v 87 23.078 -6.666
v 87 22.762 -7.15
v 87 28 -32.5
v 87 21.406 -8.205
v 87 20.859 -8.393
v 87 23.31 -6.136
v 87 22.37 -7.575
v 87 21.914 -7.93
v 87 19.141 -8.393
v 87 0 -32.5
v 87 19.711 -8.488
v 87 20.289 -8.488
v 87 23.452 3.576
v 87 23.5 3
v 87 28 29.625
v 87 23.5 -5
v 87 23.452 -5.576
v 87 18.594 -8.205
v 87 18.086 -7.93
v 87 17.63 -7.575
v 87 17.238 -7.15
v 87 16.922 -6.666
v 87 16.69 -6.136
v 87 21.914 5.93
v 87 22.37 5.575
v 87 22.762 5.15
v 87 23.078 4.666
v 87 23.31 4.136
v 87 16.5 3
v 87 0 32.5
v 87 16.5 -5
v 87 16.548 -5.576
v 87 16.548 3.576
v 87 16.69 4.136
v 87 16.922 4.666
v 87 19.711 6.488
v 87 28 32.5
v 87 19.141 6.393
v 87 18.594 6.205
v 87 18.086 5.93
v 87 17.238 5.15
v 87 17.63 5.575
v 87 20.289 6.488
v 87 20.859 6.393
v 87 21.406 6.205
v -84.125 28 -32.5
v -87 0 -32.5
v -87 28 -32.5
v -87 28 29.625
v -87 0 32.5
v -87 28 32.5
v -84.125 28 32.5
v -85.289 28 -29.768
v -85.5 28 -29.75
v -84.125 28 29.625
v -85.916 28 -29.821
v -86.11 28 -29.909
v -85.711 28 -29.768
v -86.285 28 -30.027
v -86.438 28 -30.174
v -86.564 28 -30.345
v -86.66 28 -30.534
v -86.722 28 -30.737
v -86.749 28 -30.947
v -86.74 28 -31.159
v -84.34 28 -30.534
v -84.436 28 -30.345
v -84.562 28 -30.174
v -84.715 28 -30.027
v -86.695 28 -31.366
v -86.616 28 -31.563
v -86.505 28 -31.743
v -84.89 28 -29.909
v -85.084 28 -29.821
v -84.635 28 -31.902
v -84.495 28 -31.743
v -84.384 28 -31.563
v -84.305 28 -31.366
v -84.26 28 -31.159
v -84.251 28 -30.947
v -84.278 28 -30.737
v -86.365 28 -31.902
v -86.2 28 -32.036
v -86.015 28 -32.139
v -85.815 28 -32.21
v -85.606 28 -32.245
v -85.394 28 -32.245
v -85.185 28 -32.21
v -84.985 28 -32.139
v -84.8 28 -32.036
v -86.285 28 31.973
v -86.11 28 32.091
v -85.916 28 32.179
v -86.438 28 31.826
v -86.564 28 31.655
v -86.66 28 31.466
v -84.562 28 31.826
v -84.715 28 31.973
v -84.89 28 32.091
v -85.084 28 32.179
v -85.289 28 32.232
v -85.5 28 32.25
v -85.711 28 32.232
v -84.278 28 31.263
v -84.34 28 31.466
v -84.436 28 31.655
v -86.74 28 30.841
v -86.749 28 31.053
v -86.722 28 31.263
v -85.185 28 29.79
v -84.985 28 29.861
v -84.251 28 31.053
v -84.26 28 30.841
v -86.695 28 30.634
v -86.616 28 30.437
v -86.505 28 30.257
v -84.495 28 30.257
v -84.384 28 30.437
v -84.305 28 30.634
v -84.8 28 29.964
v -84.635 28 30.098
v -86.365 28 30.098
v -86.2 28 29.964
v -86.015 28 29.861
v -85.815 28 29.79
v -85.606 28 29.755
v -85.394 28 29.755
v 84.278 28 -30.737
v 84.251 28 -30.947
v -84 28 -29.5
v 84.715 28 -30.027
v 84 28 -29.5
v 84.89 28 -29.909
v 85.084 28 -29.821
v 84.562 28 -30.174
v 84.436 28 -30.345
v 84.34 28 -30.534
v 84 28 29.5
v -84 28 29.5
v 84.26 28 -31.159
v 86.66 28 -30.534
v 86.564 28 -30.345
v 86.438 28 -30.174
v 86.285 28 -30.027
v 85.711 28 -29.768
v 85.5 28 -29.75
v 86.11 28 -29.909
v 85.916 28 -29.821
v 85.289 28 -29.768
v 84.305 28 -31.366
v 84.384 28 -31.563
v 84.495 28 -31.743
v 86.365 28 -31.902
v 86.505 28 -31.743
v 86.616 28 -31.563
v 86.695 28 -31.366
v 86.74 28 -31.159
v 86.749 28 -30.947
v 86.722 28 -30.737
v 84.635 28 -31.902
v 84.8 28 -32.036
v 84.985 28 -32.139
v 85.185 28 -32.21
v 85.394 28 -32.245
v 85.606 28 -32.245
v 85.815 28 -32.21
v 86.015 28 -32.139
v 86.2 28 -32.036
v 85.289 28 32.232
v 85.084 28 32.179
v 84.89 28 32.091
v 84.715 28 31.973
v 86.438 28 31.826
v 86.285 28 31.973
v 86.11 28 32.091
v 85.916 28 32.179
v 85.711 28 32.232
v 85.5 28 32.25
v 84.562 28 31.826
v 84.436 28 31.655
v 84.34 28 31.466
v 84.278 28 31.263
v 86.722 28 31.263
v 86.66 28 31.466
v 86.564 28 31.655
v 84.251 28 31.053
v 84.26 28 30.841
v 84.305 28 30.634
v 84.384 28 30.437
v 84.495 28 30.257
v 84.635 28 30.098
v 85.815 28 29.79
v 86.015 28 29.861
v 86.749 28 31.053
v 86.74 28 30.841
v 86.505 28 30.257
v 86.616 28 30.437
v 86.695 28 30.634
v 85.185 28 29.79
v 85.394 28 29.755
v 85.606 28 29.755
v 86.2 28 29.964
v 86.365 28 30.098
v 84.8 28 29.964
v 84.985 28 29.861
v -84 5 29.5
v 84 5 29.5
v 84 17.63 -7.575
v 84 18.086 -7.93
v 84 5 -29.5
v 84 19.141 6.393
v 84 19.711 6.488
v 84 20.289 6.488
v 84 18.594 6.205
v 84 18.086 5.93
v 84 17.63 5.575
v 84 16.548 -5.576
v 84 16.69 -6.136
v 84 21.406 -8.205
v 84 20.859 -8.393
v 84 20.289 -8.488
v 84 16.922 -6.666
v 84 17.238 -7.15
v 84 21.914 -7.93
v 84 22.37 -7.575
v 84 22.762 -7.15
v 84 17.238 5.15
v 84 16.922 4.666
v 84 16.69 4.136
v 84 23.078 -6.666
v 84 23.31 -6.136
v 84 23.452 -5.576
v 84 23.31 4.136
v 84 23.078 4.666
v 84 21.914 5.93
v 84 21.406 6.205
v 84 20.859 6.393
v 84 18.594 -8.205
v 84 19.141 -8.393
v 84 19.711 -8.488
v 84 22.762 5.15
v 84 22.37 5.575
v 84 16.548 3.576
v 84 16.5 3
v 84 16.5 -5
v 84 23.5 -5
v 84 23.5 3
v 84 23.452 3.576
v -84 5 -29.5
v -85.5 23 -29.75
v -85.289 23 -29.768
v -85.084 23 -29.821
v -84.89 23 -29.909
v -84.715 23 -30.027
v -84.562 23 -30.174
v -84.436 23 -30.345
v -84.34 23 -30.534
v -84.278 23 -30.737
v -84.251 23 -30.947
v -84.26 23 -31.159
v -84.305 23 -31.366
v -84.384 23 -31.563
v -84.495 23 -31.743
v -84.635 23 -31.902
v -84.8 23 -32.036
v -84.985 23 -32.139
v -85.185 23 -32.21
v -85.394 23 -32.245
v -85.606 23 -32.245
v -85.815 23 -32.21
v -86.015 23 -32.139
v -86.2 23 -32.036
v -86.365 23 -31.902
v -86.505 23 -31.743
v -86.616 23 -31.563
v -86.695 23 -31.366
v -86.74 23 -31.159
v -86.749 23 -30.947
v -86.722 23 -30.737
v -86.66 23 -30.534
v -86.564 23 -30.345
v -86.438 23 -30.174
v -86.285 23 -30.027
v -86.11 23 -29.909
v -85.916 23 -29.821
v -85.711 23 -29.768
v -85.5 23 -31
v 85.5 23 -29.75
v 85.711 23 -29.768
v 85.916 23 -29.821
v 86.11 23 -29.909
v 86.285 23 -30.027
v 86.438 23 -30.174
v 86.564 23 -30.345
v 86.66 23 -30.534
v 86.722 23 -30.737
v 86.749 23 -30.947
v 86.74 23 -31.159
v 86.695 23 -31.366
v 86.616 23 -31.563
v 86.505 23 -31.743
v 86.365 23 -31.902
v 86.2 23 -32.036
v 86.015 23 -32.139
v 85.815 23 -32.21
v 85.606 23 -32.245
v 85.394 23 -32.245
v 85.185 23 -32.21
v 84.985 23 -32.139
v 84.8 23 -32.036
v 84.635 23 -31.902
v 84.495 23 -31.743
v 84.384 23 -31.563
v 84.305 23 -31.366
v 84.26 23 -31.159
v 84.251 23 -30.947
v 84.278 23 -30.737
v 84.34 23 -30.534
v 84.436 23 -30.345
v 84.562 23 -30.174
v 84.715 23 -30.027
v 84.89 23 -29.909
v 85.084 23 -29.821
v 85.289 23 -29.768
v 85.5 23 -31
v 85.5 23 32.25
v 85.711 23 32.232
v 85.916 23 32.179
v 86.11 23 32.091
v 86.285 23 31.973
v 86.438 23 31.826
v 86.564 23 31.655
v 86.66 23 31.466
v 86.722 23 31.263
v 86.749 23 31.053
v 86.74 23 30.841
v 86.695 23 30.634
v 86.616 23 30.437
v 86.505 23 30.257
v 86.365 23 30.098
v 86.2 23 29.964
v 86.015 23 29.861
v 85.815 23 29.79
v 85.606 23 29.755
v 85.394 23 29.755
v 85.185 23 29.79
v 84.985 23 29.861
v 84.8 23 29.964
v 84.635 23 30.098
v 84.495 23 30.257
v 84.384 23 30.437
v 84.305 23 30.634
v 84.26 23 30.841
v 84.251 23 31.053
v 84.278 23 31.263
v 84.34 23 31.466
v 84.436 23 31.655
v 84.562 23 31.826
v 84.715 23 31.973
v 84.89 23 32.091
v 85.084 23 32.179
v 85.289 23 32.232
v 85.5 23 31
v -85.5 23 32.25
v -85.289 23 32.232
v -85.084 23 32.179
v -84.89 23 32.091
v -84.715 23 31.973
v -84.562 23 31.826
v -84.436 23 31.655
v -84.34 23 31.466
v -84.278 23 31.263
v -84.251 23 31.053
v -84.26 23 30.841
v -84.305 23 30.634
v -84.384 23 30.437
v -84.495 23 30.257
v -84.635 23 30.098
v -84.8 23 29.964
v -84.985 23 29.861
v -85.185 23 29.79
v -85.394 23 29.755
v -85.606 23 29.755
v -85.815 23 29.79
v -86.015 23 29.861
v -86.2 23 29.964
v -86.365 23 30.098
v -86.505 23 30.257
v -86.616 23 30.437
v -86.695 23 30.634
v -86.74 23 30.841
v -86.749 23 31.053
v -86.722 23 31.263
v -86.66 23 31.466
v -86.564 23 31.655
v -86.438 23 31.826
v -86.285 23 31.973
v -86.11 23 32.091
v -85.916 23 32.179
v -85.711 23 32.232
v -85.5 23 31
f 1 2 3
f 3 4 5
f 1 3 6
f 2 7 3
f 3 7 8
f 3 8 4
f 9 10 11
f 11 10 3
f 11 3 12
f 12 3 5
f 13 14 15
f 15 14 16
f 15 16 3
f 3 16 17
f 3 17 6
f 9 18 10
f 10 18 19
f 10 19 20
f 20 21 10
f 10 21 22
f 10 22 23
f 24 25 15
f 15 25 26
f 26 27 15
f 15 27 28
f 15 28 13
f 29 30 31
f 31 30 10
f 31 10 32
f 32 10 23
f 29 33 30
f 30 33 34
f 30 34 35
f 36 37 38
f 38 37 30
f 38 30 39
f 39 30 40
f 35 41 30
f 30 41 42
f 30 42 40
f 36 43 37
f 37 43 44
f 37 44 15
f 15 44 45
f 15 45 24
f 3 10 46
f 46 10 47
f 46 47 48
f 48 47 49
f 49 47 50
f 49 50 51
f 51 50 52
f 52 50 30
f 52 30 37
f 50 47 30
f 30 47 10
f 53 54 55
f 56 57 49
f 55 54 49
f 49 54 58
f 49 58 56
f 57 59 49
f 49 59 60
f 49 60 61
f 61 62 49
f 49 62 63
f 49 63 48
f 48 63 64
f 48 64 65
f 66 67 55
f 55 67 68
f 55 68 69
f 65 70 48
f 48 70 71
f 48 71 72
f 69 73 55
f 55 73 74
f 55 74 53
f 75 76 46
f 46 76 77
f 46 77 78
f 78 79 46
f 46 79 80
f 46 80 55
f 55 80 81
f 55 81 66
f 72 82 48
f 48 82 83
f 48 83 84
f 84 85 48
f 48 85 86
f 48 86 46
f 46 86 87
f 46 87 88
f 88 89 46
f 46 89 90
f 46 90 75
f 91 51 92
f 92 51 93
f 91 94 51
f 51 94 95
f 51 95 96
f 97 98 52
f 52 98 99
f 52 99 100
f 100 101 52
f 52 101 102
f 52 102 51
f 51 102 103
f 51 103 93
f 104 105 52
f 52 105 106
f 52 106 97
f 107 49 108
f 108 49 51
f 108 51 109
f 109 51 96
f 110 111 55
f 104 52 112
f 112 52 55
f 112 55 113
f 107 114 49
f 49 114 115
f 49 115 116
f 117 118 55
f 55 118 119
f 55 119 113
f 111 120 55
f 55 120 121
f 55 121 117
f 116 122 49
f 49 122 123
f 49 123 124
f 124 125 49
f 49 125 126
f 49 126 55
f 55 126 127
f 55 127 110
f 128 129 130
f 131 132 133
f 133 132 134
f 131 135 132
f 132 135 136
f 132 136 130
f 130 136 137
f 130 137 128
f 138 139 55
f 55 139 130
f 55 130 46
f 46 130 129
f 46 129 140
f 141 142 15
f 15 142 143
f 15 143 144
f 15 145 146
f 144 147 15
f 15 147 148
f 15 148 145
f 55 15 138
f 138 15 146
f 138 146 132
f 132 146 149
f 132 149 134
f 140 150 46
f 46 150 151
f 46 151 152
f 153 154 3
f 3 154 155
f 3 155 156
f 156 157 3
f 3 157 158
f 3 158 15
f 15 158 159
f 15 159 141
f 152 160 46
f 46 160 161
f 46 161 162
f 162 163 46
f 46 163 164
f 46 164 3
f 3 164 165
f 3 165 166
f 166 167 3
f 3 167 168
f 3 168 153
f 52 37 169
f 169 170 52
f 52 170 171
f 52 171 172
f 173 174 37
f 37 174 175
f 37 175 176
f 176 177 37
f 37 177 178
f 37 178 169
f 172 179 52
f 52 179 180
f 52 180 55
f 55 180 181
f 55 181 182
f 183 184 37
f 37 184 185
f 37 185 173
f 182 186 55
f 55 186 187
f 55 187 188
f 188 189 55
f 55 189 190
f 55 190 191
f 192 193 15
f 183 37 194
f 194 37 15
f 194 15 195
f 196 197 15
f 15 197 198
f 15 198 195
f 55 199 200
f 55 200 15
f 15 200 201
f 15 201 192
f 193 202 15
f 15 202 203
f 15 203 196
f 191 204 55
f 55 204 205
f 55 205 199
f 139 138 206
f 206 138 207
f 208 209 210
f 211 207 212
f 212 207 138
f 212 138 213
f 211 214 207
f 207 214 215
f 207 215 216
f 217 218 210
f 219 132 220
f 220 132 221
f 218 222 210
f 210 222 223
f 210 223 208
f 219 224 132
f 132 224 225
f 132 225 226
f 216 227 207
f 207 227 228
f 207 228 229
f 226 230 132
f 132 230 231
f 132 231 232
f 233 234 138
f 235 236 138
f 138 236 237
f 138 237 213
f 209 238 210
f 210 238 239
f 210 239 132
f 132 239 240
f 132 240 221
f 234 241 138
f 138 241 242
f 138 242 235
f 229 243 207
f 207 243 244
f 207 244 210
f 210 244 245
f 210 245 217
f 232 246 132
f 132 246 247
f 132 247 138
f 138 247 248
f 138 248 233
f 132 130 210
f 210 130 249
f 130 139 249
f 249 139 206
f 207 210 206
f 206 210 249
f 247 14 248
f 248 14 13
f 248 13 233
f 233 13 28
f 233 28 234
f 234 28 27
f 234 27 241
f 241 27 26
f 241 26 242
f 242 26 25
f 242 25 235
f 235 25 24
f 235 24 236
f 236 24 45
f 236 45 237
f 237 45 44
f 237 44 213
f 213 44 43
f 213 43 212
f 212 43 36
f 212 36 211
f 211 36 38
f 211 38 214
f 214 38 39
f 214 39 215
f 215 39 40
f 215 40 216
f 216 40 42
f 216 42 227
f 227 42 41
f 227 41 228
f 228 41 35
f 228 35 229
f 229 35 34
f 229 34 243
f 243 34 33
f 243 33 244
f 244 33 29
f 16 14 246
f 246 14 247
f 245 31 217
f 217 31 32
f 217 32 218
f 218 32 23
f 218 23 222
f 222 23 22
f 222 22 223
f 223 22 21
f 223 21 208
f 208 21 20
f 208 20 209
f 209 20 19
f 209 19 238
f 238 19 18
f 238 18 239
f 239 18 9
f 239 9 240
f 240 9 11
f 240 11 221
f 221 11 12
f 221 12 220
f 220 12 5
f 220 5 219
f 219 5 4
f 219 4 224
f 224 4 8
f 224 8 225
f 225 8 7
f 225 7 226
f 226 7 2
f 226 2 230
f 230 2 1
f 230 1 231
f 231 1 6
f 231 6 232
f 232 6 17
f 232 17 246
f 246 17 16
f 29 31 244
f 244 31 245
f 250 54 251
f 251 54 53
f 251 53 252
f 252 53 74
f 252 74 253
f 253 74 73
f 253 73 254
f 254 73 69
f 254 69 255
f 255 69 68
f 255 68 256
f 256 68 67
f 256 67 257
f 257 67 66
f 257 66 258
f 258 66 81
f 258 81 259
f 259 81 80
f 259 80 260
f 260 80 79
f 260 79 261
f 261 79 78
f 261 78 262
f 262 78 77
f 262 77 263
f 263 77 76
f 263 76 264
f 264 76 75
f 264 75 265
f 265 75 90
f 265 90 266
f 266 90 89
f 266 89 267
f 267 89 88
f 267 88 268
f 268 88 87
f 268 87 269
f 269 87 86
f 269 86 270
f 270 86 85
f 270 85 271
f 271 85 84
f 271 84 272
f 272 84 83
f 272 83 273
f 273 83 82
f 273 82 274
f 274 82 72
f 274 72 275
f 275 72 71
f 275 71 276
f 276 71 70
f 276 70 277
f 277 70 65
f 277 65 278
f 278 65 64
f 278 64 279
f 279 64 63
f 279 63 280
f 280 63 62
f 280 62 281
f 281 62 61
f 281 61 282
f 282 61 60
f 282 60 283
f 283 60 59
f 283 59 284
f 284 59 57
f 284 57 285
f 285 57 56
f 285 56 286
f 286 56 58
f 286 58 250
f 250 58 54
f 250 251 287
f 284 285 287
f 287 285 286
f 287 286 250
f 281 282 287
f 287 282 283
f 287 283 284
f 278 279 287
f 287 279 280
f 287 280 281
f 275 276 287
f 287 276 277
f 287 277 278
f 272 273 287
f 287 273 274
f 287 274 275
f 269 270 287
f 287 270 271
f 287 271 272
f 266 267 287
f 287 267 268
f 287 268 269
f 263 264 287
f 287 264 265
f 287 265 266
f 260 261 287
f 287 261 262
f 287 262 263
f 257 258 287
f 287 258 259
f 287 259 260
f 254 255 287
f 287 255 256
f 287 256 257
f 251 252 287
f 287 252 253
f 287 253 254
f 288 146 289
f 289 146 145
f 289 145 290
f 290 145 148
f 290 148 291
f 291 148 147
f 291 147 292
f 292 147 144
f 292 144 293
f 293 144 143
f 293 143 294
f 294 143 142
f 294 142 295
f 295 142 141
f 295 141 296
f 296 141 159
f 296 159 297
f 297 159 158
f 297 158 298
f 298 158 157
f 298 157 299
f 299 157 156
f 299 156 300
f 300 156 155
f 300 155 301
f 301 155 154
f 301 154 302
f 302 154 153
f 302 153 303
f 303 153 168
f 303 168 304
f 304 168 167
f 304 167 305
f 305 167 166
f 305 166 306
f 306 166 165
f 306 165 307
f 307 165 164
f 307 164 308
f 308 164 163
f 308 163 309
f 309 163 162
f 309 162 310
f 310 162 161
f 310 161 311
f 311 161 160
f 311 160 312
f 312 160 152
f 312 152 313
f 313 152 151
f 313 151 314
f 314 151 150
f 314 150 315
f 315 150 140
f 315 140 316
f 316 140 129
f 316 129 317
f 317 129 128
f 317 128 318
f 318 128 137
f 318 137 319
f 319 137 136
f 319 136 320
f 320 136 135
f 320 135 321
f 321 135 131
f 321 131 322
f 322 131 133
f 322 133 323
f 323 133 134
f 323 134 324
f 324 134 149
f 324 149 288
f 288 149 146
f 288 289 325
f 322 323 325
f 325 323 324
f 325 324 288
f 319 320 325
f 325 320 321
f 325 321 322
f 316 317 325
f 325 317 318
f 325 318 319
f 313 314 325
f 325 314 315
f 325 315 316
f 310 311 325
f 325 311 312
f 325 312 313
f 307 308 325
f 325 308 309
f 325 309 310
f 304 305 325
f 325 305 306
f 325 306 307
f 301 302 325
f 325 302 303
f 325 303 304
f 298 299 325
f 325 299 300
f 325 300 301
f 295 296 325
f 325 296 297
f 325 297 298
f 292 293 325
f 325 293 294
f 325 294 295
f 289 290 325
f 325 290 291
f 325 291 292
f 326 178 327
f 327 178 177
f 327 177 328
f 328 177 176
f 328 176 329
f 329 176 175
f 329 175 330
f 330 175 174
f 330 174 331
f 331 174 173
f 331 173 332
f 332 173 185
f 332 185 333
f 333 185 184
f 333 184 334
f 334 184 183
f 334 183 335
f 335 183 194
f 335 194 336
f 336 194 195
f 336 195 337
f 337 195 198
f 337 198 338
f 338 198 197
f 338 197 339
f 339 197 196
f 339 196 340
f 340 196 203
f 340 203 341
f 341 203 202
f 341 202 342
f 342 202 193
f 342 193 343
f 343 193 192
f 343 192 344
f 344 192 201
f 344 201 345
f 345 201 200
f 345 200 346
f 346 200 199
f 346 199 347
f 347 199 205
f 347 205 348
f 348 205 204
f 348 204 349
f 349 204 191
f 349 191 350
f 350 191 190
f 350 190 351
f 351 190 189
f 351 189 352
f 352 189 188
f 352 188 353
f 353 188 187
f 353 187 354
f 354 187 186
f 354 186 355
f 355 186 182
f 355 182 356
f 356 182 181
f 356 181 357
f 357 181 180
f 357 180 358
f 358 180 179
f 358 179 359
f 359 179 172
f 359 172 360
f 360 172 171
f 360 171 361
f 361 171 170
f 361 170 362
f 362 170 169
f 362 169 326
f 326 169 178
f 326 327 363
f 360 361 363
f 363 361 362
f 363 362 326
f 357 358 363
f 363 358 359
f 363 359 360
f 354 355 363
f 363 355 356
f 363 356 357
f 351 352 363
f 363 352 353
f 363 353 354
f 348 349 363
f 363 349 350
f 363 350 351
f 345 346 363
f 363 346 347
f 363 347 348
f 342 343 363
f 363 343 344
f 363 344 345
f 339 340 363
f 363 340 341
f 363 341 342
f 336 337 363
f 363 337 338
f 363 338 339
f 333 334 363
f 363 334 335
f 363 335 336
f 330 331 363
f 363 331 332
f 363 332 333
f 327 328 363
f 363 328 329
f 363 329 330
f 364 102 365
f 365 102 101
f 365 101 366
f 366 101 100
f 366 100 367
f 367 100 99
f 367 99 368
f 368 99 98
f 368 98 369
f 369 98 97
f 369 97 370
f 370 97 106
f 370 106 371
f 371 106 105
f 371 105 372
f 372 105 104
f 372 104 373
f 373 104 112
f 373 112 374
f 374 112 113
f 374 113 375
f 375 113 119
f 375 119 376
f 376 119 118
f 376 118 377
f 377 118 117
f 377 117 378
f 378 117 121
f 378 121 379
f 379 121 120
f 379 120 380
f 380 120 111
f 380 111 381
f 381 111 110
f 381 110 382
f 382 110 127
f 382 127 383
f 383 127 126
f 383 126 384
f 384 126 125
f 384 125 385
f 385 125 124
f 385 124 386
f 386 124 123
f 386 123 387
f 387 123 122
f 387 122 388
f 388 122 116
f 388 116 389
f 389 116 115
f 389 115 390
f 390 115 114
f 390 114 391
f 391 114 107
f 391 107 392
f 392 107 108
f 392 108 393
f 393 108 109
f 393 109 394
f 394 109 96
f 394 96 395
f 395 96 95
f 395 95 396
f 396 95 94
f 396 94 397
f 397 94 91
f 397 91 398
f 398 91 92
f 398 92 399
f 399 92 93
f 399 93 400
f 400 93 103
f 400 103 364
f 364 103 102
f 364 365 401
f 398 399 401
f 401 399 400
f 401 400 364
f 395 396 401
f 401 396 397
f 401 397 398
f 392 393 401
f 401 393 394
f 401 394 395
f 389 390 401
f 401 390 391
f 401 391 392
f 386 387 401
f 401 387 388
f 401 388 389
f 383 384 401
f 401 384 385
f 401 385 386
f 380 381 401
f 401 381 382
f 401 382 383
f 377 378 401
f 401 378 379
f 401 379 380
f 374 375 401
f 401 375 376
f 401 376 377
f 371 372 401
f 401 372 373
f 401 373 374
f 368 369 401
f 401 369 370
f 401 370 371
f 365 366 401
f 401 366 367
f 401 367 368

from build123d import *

# Parameters (mm, degrees)
SKETCH1_W           = 174
SKETCH1_H           = 65
BOSS_EXTRUDE1_DEPTH = 5
SKETCH2_W           = 174
SKETCH2_H           = 65
SKETCH2_W_2         = 168
SKETCH2_H_2         = 59
BOSS_EXTRUDE2_DEPTH = 23
CUT_EXTRUDE1_DEPTH  = 23
SKETCH4_R           = 1.25
CUT_EXTRUDE2_DEPTH  = 5


with BuildPart() as part:
    # Sketch1 → Boss-Extrude1 (new body)
    with BuildSketch(Plane(origin=(0, 0, 0), x_dir=(1, 0, 0), z_dir=(0, 1, 0))):
        Rectangle(SKETCH1_W, SKETCH1_H)
    extrude(amount=BOSS_EXTRUDE1_DEPTH)

    # Sketch2 → Boss-Extrude2 (add)
    with BuildSketch(Plane(origin=(0, 5, 0), x_dir=(1, 0, 0), z_dir=(0, 1, 0))):
        Rectangle(SKETCH2_W, SKETCH2_H)
        Rectangle(SKETCH2_W_2, SKETCH2_H_2, mode=Mode.SUBTRACT)
    extrude(amount=BOSS_EXTRUDE2_DEPTH)

    # Sketch3 → Cut-Extrude1 (cut)
    with BuildSketch(Plane(origin=(87, 0, 0), x_dir=(0, 0, -1), z_dir=(1, 0, 0))):
        with BuildLine():
            Line((-3, 23.5), (5, 23.5))
            ThreePointArc((5, 23.5), (8.5, 20), (5, 16.5))
            Line((5, 16.5), (-3, 16.5))
            ThreePointArc((-3, 16.5), (-6.5, 20), (-3, 23.5))
        make_face()
    extrude(amount=-CUT_EXTRUDE1_DEPTH, mode=Mode.SUBTRACT)

    # Sketch4 → Cut-Extrude2 (cut)
    with BuildSketch(Plane(origin=(0, 28, 0), x_dir=(1, 0, 0), z_dir=(0, 1, 0))):
        with Locations(Location((-85.5, 31, 0), (0, 0, 270))):
            Circle(SKETCH4_R)
        with Locations(Location((85.5, 31, 0), (0, 0, 270))):
            Circle(SKETCH4_R)
        with Locations(Location((85.5, -31, 0), (0, 0, 270))):
            Circle(SKETCH4_R)
        with Locations(Location((-85.5, -31, 0), (0, 0, 270))):
            Circle(SKETCH4_R)
    extrude(amount=-CUT_EXTRUDE2_DEPTH, mode=Mode.SUBTRACT)


solid = part.part
